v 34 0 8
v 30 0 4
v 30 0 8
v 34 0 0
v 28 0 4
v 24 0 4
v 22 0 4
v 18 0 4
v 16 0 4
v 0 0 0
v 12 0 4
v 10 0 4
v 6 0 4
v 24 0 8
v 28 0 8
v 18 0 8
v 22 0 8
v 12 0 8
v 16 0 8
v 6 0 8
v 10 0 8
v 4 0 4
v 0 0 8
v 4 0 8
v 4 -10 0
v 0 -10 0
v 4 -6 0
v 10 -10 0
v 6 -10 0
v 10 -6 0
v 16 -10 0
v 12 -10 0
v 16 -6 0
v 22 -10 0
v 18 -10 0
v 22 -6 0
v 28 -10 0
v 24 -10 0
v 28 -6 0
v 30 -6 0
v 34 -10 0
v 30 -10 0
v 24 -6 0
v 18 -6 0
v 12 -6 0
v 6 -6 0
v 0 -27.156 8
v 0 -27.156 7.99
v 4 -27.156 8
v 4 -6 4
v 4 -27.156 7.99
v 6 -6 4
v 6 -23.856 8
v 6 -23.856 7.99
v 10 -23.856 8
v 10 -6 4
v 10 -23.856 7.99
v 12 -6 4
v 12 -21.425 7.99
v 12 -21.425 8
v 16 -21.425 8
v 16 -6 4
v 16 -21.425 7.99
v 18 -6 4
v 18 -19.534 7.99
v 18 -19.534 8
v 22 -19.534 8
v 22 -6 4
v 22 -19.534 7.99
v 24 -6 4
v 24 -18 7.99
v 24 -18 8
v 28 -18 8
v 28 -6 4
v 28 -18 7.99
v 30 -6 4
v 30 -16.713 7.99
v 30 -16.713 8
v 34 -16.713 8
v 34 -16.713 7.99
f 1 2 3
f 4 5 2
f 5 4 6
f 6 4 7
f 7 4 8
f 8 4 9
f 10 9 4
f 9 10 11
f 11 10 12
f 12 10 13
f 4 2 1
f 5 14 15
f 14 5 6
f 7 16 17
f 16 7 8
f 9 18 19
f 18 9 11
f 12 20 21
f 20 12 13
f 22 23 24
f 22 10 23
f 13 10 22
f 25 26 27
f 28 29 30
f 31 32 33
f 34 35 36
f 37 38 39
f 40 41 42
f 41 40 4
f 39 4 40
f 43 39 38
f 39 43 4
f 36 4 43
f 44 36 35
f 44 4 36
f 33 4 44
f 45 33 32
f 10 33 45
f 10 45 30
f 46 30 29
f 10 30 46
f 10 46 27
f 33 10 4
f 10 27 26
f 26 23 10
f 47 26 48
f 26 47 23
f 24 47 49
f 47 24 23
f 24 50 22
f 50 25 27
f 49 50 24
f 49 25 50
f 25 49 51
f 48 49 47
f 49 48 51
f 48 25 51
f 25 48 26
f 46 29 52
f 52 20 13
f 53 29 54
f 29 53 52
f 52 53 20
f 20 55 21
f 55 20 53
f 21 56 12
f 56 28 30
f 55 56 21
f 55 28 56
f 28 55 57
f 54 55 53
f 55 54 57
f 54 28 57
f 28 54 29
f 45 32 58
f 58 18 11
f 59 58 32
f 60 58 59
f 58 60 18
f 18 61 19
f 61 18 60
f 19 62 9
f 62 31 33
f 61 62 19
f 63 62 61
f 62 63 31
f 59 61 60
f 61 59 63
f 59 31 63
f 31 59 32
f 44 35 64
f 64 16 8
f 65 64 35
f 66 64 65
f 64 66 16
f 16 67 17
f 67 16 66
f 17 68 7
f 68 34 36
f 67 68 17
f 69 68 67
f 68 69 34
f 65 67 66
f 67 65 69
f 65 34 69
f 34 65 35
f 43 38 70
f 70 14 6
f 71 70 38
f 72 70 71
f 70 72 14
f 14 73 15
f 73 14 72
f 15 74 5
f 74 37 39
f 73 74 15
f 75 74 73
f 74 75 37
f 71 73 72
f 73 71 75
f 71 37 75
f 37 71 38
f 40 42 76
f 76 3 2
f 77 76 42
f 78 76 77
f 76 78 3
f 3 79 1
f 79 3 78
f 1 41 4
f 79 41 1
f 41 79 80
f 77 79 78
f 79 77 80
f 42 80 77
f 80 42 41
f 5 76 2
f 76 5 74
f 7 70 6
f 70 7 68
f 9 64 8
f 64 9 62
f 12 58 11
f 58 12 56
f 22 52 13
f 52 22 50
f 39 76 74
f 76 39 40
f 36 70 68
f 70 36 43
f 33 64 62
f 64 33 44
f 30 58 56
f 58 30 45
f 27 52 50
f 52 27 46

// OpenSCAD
eps = 0.01;

w = 4;
s = 2;
h = 8;
n = 6;
a0 = 40;

pitch = w+s;

module finger(a) {
  l = 10;
  hull() {
    cube([l, w, eps]);
    translate([0, 0, h-eps]) cube([l+tan(a)*h, w, eps]);
  }
}

module main() {
  for (i = [0:n-1]) {
    a = a0 + (n-1-i)*5;
    echo("Angle: ", a);
    translate([0, pitch*i]) finger(a);
    //finger(45);
  }

  cube([6, n*pitch-s, h/2]);
}

rotate([0, 0, -90]) main();
